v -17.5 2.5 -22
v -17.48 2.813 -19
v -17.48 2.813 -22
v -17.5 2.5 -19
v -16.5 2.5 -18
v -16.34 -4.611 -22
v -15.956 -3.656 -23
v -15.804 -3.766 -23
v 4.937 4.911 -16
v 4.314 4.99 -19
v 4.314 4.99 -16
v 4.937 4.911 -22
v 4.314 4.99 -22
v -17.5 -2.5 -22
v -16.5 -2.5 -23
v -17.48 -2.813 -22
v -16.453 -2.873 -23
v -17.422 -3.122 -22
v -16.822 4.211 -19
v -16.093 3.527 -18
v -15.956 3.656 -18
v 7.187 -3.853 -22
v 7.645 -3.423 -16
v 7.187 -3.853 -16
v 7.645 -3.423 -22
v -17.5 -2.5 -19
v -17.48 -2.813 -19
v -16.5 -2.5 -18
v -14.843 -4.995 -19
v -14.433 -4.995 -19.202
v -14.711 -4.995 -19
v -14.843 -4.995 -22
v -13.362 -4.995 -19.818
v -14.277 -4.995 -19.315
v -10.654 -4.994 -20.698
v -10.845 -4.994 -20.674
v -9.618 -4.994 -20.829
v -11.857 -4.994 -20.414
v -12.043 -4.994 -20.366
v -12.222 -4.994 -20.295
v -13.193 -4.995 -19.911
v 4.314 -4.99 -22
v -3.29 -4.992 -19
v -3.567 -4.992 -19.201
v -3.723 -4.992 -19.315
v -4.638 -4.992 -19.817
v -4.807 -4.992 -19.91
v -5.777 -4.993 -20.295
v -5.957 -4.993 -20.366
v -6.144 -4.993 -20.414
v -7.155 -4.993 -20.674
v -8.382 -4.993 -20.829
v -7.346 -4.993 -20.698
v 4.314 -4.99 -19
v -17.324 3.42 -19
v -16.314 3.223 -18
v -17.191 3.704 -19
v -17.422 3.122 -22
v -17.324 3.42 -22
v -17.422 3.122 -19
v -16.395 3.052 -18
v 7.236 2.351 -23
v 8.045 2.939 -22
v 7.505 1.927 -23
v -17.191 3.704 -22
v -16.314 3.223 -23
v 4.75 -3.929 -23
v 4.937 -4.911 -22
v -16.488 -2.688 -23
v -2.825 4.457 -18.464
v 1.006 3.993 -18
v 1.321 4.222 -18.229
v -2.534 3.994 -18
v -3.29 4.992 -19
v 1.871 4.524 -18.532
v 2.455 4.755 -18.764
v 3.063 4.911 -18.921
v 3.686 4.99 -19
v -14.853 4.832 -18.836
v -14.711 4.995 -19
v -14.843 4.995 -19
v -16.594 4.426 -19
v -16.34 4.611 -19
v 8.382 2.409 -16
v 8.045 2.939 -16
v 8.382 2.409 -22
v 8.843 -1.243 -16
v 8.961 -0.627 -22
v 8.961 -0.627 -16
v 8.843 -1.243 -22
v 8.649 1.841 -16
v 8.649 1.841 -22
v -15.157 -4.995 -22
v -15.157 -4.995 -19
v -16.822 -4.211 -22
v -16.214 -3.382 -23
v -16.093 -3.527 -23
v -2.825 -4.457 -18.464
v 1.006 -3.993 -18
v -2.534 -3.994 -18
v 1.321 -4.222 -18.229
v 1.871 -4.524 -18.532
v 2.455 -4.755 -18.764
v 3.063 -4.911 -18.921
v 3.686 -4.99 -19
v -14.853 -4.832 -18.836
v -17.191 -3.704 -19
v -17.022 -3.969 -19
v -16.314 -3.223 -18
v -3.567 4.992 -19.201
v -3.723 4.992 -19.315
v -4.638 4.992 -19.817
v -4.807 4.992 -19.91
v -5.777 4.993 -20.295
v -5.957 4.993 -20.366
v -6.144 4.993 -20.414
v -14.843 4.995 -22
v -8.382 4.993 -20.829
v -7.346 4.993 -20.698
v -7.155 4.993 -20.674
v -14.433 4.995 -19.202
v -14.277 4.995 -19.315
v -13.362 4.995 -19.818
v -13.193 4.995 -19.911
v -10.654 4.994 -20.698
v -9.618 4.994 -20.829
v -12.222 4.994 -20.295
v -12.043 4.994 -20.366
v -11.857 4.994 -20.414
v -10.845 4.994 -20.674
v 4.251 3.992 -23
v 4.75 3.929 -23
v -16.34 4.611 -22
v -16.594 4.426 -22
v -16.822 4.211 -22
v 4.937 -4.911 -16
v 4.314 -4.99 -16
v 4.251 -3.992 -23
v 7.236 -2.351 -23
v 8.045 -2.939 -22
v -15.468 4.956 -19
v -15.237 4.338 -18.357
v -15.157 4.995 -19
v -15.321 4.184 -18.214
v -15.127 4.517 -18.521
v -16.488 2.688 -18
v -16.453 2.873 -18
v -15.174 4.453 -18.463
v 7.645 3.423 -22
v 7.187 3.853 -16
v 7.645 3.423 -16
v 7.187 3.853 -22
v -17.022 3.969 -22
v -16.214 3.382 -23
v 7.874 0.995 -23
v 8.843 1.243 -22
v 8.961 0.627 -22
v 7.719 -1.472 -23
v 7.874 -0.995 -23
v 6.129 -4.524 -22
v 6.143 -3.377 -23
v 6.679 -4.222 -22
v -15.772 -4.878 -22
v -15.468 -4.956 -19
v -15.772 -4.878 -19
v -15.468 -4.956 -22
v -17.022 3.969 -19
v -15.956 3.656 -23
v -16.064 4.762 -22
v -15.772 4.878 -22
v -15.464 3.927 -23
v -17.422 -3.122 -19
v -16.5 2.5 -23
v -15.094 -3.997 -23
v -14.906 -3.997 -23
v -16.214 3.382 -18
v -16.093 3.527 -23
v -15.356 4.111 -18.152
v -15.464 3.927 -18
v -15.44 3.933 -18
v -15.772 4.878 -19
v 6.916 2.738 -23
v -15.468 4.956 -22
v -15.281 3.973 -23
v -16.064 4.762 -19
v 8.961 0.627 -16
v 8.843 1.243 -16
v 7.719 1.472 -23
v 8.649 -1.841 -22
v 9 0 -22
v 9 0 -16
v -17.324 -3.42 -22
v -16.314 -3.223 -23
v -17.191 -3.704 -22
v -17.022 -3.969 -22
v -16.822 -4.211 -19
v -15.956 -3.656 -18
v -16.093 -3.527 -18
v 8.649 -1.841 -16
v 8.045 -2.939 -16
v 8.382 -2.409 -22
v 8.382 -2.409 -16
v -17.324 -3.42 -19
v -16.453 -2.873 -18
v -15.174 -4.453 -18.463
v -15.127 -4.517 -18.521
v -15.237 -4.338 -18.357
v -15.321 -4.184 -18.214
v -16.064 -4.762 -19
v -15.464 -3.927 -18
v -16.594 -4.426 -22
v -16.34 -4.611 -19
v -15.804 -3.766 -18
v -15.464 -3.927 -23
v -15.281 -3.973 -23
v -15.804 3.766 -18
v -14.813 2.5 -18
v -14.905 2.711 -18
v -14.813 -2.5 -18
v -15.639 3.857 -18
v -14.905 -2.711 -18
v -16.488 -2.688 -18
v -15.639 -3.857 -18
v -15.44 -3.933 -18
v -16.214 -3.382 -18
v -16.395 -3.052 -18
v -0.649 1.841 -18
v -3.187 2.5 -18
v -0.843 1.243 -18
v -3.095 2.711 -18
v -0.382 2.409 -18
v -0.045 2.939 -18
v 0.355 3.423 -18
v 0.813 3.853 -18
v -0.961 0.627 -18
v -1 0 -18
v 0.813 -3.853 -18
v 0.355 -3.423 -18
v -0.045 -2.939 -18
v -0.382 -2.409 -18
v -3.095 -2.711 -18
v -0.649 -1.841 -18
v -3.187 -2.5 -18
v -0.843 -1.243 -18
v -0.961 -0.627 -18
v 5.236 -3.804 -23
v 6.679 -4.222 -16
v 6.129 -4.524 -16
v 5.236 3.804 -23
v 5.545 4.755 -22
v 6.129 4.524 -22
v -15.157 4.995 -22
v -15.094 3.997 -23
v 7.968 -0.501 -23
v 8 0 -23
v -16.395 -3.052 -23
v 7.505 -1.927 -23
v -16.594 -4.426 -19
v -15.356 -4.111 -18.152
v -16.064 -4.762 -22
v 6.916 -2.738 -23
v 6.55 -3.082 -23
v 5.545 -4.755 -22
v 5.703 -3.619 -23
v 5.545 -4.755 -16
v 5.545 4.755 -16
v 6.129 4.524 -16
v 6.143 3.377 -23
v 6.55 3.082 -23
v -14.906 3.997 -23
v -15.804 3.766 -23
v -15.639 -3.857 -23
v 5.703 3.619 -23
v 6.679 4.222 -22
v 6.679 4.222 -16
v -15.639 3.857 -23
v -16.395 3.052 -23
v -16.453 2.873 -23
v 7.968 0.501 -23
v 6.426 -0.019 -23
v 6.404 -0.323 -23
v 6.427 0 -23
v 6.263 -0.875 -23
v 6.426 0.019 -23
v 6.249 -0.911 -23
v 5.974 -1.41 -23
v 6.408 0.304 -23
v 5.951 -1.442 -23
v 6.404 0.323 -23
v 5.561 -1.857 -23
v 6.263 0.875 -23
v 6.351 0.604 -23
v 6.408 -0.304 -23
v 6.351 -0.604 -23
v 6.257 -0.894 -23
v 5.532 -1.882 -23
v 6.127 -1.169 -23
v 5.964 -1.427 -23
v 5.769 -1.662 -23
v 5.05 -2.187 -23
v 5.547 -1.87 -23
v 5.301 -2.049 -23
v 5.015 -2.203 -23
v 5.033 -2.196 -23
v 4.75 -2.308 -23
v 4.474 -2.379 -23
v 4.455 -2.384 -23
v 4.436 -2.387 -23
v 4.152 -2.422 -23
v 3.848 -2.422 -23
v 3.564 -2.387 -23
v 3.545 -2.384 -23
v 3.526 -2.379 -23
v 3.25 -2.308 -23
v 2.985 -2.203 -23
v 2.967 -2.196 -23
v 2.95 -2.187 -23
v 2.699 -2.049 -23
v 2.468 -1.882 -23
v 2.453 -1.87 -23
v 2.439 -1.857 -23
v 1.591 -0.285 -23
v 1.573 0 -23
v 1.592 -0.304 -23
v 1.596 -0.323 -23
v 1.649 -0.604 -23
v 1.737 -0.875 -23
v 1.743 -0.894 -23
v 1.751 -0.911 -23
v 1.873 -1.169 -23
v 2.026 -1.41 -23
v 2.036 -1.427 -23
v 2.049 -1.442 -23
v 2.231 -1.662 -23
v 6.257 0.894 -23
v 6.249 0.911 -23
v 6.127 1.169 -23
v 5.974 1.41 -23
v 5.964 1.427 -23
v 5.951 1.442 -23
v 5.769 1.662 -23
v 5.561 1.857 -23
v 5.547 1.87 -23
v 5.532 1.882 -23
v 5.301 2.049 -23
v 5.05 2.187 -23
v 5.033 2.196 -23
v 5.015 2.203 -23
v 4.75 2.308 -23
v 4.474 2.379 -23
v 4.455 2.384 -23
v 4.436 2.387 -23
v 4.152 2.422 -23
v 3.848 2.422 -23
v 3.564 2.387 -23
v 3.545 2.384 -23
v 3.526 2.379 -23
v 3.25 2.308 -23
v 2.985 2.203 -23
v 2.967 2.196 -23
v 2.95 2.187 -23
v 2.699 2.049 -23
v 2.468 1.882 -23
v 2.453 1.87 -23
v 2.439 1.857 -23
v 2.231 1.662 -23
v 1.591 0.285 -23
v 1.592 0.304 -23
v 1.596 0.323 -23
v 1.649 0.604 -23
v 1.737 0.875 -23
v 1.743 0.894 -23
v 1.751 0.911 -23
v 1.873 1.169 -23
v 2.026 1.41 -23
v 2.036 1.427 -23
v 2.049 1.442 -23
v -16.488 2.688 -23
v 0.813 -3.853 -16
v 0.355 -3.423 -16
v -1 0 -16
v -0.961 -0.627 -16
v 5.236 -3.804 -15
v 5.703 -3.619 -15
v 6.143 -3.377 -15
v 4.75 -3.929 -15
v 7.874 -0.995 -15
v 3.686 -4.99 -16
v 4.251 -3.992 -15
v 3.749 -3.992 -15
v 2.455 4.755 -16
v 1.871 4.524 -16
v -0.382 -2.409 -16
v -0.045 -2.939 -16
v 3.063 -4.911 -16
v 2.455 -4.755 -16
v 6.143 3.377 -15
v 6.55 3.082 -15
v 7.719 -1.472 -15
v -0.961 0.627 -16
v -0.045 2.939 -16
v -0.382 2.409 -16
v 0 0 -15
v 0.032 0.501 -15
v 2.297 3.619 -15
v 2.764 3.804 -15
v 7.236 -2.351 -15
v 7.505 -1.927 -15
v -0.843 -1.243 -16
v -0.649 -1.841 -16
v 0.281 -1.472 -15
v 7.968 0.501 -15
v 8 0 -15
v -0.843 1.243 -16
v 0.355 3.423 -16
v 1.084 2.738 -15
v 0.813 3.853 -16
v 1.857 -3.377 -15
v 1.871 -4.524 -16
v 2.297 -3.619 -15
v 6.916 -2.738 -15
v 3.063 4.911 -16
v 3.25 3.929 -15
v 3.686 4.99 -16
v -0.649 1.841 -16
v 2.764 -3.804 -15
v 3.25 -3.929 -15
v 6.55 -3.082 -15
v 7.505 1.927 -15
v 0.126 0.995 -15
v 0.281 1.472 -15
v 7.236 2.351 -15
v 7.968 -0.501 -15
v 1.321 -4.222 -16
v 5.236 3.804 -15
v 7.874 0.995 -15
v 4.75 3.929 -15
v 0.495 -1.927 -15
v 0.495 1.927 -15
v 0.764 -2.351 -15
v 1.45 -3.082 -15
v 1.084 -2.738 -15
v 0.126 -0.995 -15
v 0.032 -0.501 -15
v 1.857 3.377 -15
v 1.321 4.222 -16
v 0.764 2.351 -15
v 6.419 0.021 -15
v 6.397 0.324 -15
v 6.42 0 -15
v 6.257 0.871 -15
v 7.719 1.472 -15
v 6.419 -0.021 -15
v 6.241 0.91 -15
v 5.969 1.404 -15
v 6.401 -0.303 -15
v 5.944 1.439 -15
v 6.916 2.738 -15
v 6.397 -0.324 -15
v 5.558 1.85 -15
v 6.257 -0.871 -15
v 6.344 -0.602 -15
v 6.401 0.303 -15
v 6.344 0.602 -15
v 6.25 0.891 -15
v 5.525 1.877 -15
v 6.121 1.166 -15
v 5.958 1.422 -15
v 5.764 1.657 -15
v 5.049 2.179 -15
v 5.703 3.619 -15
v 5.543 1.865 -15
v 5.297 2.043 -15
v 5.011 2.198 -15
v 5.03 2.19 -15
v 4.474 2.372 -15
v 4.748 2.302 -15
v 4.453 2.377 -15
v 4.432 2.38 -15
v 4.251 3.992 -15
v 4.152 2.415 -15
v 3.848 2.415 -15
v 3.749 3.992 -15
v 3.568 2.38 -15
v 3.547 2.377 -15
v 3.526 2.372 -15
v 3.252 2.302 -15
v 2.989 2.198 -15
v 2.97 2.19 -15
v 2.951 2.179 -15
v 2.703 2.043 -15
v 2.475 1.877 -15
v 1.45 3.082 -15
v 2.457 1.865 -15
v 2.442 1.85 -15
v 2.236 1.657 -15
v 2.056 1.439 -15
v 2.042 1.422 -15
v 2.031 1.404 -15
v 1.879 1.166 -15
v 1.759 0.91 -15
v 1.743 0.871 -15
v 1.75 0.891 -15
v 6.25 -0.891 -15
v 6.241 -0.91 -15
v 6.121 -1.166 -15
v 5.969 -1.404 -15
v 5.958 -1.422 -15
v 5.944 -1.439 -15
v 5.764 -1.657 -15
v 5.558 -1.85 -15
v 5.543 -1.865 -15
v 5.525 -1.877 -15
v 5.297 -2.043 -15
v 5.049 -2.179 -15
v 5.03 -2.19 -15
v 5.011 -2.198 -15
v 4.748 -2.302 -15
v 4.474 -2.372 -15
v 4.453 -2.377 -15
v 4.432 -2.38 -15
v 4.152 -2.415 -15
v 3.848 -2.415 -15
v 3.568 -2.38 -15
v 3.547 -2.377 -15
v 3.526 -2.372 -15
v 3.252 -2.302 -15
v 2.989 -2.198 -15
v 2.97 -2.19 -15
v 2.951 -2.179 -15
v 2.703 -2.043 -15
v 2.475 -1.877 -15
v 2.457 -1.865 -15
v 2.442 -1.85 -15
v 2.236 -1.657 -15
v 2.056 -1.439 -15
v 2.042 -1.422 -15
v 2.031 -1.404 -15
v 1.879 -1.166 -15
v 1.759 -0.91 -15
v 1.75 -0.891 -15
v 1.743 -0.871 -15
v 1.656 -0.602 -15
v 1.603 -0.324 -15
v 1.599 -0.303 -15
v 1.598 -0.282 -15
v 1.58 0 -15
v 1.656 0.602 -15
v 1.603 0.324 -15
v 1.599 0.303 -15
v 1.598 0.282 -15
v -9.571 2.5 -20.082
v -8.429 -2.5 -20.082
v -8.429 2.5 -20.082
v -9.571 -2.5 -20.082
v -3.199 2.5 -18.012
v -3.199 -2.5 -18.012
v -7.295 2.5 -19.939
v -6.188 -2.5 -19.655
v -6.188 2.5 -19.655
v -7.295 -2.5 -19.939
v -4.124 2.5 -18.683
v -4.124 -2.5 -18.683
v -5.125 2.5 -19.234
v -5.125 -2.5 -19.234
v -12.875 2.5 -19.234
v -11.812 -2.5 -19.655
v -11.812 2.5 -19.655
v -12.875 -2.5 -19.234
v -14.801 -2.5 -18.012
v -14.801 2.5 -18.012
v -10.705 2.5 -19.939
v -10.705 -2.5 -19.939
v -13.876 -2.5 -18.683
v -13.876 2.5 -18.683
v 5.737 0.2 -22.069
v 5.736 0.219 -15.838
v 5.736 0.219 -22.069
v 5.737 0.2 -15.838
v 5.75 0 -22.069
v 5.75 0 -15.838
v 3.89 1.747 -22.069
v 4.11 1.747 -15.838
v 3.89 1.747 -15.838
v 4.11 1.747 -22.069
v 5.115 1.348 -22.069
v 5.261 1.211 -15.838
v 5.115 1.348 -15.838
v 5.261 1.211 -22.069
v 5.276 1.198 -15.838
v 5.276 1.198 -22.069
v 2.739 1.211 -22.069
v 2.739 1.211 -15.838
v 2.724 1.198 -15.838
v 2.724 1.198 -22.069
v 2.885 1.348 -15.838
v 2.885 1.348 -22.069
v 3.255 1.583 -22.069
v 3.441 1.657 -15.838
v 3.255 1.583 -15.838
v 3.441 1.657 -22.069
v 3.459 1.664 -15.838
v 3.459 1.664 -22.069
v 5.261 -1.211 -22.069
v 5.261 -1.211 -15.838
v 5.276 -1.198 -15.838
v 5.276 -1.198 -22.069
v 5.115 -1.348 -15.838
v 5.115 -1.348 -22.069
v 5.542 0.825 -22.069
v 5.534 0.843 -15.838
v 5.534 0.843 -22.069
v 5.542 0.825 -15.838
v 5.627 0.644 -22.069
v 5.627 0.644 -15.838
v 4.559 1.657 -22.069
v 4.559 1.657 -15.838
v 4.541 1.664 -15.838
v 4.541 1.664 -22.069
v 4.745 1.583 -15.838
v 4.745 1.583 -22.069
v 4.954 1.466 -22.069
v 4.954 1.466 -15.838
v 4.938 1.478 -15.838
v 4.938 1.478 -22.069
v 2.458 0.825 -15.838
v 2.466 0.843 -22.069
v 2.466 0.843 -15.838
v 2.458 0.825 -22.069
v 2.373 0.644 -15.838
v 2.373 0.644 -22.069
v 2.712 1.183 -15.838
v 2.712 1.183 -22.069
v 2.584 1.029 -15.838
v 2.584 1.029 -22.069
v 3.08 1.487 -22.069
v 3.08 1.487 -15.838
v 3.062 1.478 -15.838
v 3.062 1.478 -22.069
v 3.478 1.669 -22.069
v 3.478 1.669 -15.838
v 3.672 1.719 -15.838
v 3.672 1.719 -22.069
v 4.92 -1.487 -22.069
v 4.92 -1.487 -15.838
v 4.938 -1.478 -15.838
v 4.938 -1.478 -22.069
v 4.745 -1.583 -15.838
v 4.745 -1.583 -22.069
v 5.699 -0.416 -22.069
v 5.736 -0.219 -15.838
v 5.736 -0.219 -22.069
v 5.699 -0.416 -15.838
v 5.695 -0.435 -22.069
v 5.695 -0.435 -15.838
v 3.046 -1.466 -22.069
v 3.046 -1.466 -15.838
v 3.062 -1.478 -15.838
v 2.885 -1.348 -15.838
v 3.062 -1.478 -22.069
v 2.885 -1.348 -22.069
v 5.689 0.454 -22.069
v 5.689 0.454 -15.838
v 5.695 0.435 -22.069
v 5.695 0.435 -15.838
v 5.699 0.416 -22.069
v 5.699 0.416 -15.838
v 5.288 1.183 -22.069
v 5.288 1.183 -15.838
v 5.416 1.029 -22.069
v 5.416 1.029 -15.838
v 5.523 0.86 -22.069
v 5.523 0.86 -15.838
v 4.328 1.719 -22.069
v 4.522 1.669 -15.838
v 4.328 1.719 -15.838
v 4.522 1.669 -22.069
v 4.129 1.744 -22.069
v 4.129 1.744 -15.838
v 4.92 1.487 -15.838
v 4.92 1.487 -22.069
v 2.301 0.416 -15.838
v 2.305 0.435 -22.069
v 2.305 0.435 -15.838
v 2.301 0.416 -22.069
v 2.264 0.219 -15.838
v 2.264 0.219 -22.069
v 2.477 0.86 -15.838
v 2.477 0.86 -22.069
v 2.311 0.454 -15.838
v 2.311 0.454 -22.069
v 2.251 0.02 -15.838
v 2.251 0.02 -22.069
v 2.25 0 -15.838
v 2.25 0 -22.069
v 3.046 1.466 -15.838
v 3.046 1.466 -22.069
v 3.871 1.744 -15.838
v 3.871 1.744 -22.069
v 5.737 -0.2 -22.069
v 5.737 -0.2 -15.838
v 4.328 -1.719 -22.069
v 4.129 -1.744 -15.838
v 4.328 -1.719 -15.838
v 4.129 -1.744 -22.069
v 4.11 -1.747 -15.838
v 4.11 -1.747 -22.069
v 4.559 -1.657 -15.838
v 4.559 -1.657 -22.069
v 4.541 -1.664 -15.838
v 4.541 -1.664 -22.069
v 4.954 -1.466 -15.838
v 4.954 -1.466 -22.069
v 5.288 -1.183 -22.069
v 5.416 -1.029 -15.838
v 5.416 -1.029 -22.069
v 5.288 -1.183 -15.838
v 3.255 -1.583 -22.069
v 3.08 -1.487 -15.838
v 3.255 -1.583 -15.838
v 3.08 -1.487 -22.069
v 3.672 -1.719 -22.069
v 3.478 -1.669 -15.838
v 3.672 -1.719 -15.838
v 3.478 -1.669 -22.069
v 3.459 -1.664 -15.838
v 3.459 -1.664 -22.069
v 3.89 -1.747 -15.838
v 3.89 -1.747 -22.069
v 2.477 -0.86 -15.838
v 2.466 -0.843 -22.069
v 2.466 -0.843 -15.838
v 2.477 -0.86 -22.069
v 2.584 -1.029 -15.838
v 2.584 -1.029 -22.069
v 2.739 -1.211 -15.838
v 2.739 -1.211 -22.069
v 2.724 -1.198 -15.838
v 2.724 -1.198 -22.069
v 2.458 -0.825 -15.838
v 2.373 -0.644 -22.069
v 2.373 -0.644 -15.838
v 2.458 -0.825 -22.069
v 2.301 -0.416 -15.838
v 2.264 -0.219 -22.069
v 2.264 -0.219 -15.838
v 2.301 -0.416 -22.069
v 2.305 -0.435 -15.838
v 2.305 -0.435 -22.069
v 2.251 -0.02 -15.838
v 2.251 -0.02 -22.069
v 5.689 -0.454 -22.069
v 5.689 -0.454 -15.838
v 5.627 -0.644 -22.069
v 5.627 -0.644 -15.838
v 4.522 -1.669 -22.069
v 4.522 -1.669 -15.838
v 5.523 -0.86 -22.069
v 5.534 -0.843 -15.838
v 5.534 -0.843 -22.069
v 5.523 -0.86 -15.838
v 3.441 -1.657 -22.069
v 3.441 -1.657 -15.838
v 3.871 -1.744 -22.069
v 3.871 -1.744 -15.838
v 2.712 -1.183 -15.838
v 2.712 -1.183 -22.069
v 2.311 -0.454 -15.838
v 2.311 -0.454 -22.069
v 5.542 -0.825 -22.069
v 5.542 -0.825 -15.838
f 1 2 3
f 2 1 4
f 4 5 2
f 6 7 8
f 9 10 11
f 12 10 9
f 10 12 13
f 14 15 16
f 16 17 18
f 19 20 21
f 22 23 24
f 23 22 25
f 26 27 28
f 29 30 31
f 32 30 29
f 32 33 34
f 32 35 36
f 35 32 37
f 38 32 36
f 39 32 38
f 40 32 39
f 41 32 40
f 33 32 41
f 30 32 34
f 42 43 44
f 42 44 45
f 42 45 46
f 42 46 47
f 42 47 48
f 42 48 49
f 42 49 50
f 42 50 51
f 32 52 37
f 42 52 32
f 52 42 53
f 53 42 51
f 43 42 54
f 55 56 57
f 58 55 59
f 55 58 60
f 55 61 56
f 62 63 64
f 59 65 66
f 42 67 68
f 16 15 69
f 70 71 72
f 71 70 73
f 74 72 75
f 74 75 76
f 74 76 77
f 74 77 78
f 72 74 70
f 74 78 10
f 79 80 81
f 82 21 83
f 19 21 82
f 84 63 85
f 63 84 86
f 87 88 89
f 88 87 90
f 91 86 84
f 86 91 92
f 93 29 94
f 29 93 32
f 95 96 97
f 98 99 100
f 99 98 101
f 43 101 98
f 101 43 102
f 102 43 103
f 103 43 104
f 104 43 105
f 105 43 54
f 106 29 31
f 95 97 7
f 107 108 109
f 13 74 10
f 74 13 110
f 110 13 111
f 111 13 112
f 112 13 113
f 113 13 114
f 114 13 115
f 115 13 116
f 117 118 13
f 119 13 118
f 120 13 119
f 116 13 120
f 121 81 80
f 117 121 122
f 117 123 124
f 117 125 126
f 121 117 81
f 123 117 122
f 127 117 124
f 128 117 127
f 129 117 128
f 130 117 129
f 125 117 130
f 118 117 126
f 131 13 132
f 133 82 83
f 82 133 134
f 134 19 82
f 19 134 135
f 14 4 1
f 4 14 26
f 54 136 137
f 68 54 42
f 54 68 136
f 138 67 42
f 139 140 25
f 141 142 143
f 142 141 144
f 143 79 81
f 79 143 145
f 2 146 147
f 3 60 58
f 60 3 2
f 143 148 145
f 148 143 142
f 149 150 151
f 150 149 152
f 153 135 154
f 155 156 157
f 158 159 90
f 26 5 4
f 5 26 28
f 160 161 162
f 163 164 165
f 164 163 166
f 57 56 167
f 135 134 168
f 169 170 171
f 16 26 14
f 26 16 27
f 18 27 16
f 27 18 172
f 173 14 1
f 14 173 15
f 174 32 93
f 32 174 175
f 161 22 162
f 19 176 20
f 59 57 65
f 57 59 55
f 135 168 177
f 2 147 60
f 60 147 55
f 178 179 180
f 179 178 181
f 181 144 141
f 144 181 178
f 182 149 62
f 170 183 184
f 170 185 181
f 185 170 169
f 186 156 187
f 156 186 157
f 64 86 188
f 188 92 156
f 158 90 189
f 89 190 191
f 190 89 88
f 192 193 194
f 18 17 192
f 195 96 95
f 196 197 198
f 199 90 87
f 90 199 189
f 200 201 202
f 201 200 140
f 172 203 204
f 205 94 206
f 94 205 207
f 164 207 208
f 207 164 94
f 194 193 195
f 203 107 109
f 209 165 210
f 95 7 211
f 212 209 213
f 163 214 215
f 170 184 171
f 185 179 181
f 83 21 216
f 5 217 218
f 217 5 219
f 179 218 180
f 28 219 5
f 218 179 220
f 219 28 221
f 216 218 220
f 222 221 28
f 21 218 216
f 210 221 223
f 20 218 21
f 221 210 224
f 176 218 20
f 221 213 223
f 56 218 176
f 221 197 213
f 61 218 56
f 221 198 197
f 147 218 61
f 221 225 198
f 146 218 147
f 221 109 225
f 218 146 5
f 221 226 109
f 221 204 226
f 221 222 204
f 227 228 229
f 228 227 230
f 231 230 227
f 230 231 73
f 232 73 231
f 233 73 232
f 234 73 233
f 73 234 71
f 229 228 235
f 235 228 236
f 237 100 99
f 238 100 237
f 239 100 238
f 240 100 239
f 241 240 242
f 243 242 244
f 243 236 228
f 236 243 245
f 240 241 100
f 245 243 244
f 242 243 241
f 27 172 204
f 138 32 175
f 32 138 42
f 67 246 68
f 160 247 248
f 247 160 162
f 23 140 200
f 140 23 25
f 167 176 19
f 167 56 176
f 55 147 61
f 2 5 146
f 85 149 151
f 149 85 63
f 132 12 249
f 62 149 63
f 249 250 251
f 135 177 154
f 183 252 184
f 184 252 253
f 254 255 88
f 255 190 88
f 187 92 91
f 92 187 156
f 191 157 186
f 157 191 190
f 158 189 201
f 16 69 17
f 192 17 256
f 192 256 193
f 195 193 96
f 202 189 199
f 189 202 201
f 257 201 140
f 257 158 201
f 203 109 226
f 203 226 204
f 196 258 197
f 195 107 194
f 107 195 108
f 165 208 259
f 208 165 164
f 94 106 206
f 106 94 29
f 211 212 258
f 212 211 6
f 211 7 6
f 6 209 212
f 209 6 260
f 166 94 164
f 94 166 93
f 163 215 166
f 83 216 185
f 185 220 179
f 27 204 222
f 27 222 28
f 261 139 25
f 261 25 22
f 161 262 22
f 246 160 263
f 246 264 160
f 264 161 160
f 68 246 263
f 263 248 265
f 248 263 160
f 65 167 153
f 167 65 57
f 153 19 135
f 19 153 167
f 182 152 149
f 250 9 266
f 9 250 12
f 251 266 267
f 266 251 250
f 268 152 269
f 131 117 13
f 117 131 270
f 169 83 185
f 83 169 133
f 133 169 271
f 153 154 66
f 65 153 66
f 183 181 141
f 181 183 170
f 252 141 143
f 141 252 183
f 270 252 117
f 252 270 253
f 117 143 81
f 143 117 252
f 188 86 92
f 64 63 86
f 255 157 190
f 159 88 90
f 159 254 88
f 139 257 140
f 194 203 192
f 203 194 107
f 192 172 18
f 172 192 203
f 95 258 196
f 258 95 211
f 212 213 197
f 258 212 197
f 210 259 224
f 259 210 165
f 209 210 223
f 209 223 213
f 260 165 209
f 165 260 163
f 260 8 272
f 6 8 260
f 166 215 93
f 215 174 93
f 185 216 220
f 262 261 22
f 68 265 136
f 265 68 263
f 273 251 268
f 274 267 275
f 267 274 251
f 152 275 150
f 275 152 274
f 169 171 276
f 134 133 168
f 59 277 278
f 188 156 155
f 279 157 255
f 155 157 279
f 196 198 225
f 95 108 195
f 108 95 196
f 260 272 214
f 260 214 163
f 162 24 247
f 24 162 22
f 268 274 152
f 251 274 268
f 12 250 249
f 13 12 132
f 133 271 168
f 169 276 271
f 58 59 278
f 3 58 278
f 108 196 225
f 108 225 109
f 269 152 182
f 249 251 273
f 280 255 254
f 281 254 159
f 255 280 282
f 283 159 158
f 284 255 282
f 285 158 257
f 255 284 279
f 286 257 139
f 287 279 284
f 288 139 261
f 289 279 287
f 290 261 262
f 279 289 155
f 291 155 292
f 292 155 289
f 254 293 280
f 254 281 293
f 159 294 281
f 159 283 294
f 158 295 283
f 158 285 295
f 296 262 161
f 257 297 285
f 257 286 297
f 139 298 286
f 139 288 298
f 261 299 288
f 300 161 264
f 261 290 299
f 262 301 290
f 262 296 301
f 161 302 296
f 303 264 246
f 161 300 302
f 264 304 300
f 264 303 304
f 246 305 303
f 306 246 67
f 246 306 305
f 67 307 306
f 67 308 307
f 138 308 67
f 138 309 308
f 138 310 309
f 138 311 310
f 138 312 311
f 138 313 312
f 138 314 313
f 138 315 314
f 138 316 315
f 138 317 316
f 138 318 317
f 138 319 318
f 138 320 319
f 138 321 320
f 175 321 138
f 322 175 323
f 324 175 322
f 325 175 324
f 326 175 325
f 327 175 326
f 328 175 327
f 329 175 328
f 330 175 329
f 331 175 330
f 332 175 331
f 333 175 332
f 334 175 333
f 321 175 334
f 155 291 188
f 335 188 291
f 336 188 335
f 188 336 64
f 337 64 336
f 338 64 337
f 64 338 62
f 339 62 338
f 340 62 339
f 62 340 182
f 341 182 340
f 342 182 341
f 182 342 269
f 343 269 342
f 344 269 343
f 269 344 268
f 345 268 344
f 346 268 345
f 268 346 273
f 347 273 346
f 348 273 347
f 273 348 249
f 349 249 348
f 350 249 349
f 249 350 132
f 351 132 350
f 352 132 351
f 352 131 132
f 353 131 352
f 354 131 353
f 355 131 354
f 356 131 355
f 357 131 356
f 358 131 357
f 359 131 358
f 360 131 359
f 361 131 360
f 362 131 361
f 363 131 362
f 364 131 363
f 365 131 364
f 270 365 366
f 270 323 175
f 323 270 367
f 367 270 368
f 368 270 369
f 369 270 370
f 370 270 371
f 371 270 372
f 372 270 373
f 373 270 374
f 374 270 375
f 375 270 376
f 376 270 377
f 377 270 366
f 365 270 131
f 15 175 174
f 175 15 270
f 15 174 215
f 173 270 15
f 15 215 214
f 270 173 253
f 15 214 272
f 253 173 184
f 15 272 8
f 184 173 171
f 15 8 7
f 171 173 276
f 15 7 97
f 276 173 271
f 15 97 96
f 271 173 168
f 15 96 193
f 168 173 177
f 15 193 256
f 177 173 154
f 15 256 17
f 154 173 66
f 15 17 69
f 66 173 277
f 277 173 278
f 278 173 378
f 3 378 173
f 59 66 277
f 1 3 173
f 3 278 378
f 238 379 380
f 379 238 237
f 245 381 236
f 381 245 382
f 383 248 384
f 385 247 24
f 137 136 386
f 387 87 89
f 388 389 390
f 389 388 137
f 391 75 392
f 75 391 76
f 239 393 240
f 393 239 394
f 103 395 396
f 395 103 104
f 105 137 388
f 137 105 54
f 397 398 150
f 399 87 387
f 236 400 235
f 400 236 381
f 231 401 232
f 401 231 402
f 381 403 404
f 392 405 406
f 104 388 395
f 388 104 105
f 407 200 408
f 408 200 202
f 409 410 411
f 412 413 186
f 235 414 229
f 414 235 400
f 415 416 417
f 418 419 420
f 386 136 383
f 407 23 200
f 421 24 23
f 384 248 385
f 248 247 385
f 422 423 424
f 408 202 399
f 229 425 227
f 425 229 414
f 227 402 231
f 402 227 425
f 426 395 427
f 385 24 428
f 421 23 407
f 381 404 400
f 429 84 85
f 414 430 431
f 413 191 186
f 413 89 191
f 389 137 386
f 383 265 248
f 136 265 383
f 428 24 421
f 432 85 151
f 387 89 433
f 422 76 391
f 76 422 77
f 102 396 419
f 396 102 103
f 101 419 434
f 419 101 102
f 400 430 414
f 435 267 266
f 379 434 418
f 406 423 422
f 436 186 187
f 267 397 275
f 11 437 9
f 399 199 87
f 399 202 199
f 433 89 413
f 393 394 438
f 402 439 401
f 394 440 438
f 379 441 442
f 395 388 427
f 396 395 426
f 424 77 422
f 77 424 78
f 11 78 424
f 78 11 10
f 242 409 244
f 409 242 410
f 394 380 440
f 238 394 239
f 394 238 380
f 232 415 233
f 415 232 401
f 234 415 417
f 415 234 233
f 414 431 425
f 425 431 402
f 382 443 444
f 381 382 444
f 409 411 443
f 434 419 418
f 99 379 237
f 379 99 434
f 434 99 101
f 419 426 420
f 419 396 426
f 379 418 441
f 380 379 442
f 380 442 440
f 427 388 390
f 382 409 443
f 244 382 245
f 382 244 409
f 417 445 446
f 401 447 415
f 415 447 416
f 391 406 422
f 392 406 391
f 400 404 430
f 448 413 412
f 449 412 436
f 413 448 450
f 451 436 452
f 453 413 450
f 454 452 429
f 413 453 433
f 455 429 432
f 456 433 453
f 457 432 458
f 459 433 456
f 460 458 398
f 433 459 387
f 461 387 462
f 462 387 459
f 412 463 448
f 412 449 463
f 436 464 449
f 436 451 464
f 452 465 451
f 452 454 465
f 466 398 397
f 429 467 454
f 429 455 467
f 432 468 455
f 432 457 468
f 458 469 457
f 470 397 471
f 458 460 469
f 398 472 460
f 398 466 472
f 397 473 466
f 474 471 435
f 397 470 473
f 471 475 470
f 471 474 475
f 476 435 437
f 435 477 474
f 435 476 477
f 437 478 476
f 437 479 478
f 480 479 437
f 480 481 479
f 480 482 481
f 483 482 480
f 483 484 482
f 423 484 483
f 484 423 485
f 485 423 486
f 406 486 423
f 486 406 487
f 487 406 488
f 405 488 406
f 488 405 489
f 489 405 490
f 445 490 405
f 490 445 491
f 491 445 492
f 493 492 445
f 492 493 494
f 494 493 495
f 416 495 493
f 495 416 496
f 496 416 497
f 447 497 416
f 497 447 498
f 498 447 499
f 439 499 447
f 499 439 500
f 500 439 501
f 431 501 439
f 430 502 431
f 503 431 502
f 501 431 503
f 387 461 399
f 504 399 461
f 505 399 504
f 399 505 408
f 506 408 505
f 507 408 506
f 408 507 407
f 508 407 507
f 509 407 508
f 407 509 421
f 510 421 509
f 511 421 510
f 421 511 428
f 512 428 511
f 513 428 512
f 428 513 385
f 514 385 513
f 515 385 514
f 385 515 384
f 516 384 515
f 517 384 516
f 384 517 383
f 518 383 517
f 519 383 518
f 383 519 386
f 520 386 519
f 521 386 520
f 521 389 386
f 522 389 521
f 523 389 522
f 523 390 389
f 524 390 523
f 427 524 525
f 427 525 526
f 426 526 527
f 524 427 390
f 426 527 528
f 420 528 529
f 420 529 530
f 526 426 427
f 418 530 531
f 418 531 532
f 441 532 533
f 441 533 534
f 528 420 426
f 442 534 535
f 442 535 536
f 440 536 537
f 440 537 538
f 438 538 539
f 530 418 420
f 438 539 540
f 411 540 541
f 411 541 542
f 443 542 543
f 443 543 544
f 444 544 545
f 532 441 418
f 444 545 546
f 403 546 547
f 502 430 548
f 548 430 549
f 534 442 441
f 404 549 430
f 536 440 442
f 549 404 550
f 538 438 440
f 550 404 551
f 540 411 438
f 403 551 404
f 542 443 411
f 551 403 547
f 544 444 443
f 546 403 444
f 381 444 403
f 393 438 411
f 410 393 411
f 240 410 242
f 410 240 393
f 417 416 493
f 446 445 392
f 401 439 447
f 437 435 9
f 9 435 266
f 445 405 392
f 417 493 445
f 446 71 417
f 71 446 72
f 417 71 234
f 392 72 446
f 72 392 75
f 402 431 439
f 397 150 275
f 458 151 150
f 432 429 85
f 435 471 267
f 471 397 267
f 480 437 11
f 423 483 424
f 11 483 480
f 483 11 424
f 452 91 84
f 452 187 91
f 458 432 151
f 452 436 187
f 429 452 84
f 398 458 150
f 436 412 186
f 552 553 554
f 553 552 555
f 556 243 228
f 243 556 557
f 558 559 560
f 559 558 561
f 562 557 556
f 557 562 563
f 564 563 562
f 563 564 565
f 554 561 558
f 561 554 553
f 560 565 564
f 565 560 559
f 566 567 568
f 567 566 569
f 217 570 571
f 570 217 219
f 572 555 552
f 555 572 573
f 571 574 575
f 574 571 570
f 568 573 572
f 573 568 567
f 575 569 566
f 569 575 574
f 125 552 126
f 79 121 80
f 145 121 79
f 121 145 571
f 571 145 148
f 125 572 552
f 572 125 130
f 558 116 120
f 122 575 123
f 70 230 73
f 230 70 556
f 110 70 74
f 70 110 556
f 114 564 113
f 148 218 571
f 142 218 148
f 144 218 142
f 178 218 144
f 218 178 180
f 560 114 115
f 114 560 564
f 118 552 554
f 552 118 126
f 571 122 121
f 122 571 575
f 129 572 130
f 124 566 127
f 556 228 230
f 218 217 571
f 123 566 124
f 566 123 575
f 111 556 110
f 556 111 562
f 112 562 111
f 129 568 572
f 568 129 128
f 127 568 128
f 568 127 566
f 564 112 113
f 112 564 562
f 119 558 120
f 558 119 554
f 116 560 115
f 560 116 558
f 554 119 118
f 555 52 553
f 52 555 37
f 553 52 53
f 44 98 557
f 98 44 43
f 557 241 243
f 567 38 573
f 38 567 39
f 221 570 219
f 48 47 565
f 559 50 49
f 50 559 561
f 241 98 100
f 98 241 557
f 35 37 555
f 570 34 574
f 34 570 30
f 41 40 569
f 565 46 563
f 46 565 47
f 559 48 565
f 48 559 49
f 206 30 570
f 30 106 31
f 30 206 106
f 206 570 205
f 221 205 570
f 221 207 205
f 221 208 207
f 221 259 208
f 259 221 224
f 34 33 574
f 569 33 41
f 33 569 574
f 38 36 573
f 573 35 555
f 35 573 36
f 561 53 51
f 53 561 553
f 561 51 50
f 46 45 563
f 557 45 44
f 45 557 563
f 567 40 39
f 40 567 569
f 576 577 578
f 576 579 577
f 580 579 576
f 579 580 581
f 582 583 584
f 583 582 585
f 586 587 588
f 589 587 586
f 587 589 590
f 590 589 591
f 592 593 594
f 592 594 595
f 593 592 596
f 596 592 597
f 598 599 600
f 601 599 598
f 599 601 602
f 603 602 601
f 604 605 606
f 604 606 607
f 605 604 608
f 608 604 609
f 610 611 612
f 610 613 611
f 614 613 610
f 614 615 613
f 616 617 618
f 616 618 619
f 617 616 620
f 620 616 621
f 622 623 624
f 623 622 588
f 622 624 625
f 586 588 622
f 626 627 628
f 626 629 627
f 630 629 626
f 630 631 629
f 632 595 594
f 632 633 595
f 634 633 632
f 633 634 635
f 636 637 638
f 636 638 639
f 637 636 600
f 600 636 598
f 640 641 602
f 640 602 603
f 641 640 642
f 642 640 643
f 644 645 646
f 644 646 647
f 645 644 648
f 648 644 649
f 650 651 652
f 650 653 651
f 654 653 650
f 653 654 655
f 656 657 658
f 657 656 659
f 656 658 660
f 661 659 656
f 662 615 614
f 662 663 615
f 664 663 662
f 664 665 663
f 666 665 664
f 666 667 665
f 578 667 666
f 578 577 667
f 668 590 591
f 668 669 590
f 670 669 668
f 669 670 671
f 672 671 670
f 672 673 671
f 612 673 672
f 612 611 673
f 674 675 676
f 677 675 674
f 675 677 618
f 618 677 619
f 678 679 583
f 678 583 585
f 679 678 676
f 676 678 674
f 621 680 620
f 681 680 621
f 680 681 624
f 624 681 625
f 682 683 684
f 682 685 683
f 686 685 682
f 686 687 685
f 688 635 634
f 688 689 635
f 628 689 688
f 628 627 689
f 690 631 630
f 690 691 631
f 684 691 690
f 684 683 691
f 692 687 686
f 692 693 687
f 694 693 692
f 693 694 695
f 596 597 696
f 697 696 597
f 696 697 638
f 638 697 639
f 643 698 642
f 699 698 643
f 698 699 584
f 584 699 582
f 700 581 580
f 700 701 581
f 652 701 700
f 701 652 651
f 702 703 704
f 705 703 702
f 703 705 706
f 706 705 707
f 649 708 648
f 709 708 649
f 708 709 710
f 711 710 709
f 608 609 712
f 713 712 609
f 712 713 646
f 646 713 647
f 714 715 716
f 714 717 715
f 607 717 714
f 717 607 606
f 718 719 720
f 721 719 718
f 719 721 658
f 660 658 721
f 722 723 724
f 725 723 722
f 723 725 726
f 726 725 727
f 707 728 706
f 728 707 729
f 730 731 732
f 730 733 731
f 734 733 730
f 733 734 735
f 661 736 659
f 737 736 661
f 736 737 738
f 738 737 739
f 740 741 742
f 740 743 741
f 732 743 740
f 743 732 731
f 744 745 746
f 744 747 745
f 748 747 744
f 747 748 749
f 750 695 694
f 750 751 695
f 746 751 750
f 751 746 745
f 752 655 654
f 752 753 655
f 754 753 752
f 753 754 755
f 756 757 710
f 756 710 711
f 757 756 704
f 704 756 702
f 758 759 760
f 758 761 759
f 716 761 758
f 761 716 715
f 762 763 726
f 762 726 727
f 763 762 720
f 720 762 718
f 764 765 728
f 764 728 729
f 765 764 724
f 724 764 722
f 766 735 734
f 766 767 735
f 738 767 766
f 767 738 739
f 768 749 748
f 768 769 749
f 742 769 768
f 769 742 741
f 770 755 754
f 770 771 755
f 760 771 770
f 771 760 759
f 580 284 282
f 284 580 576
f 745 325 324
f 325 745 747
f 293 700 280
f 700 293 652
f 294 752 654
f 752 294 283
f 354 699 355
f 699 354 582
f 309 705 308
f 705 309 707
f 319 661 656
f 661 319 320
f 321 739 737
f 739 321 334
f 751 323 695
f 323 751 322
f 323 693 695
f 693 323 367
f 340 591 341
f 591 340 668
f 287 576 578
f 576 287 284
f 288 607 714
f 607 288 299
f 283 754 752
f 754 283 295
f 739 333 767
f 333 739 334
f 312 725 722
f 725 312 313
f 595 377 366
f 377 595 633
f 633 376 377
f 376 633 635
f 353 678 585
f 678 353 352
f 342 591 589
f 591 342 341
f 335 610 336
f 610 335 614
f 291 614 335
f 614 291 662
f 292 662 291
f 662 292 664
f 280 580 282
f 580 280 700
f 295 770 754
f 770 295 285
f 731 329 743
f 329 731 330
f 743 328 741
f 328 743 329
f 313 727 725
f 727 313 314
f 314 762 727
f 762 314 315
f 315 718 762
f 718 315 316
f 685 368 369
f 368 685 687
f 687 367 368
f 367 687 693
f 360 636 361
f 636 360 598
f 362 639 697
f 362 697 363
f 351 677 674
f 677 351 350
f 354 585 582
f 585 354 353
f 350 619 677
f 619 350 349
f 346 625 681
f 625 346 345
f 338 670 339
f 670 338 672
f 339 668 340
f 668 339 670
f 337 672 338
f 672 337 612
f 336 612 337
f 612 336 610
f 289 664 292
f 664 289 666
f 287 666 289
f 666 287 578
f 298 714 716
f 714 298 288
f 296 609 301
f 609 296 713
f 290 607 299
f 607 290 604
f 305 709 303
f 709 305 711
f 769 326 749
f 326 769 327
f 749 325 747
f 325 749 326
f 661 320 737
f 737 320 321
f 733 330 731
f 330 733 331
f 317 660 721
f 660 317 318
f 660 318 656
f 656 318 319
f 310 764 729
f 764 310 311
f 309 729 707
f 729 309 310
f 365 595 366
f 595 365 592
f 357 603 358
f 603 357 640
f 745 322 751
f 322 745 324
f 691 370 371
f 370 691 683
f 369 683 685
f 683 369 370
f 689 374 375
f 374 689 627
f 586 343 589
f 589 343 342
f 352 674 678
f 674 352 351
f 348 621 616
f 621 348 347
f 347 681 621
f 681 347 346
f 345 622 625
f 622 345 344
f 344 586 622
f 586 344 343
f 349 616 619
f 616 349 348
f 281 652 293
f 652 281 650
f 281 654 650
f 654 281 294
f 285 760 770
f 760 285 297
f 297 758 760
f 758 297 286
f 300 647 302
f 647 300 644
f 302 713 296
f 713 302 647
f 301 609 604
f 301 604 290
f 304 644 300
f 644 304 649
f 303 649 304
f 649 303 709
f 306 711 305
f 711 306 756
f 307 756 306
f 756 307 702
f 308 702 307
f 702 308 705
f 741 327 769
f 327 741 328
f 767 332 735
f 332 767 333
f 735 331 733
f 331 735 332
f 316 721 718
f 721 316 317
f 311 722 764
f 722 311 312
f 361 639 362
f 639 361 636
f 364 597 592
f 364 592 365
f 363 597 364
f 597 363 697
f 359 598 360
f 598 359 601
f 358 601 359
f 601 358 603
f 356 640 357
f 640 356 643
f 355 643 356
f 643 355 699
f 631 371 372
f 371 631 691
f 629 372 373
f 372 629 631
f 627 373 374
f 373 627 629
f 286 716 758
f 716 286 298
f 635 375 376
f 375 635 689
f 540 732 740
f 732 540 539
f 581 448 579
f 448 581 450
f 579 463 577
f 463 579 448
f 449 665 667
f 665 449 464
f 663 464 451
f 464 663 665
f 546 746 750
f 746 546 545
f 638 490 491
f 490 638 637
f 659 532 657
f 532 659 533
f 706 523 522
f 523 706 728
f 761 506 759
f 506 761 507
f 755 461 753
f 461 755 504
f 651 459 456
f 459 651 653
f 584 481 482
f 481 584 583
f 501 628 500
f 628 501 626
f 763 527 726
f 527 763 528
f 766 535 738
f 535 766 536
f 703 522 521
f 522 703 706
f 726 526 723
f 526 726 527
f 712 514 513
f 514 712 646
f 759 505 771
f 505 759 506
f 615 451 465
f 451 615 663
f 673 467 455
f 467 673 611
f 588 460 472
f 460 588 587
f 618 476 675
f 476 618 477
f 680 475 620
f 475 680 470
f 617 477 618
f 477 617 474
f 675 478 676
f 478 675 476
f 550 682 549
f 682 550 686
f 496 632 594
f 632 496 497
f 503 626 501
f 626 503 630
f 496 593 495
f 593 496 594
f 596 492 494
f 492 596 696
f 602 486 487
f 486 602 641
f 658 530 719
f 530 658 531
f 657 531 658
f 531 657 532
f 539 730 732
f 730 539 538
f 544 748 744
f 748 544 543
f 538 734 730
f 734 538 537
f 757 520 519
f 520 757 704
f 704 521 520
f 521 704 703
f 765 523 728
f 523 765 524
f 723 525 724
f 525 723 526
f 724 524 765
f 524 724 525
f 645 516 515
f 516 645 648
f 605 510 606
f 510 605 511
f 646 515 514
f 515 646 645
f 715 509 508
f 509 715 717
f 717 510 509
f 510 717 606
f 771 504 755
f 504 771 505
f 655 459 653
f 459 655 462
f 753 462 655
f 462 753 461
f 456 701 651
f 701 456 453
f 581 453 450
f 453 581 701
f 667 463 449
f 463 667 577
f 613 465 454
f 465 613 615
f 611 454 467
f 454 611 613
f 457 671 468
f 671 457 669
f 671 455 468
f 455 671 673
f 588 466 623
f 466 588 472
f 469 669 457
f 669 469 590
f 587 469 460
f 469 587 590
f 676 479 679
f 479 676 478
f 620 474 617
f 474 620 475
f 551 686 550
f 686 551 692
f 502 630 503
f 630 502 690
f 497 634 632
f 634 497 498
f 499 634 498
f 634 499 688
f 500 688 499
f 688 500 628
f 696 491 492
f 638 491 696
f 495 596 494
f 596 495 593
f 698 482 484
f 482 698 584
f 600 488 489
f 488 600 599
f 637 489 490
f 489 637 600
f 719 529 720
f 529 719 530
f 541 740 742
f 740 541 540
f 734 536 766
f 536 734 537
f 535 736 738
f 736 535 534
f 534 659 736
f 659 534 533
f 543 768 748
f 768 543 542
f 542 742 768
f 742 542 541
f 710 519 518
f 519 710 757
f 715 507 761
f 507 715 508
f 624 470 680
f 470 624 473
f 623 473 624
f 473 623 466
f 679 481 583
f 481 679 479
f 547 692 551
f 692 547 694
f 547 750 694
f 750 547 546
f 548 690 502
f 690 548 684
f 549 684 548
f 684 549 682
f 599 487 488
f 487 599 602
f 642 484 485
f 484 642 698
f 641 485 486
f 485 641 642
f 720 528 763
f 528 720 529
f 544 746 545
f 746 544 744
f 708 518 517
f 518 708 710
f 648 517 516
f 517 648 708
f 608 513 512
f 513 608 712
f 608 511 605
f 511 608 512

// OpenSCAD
// bloqueo de batería de garabullo2

mirror([0,0,1])difference()
{
    union()
    {
        hull()
        {
            translate([-15,2.5,18])cylinder(d1 = 3,d2 = 5, h = 1, $fn = 50);
            translate([-15,-2.5,18])cylinder(d1 = 3,d2 = 5, h = 1, $fn = 50);
            translate([-15,2.5,22])cylinder(d1 = 5,d2 = 3, h = 1, $fn = 50);
            translate([-15,-2.5,22])cylinder(d1 = 5,d2 = 3, h = 1, $fn = 50);
            translate([4,0,18])cylinder(d1 = 8,d2 = 10, h = 1, $fn = 50);
            translate([4,0,22])cylinder(d1 = 10,d2 = 8, h = 1, $fn = 50);
        }
        hull()
        {
            translate([4,0,18])cylinder(d = 10, h = 1, $fn = 50);
            translate([4,0,15])cylinder(d1 = 8, d2 = 10, h = 1, $fn = 50);
        }
    }
    union()
    {
        translate([-9,0,11])rotate([90,0,0])cylinder(d = 18.2, h = 8, $fn = 50, center = true); //bateria
        translate([-9,4,11])rotate([-90,0,0])cylinder(d1 = 18.2,d2 = 20, h = 3, $fn = 50, center = true); //chaflan bateria
        translate([-9,-4,11])rotate([90,0,0])cylinder(d1 = 18.2,d2 = 20, h = 3, $fn = 50, center = true); //chaflan bateria
        translate([4,0,0])cylinder(d = 3.5, h = 30, $fn = 50);
        translate([4,0,22])cylinder(d1 = 3.4,d2 = 5, h = 1.1, $fn = 50);
        translate([4,0,14.9])cylinder(d1 = 5, d2 = 3.4, h = 1, $fn = 50);
        
    }
}


            
